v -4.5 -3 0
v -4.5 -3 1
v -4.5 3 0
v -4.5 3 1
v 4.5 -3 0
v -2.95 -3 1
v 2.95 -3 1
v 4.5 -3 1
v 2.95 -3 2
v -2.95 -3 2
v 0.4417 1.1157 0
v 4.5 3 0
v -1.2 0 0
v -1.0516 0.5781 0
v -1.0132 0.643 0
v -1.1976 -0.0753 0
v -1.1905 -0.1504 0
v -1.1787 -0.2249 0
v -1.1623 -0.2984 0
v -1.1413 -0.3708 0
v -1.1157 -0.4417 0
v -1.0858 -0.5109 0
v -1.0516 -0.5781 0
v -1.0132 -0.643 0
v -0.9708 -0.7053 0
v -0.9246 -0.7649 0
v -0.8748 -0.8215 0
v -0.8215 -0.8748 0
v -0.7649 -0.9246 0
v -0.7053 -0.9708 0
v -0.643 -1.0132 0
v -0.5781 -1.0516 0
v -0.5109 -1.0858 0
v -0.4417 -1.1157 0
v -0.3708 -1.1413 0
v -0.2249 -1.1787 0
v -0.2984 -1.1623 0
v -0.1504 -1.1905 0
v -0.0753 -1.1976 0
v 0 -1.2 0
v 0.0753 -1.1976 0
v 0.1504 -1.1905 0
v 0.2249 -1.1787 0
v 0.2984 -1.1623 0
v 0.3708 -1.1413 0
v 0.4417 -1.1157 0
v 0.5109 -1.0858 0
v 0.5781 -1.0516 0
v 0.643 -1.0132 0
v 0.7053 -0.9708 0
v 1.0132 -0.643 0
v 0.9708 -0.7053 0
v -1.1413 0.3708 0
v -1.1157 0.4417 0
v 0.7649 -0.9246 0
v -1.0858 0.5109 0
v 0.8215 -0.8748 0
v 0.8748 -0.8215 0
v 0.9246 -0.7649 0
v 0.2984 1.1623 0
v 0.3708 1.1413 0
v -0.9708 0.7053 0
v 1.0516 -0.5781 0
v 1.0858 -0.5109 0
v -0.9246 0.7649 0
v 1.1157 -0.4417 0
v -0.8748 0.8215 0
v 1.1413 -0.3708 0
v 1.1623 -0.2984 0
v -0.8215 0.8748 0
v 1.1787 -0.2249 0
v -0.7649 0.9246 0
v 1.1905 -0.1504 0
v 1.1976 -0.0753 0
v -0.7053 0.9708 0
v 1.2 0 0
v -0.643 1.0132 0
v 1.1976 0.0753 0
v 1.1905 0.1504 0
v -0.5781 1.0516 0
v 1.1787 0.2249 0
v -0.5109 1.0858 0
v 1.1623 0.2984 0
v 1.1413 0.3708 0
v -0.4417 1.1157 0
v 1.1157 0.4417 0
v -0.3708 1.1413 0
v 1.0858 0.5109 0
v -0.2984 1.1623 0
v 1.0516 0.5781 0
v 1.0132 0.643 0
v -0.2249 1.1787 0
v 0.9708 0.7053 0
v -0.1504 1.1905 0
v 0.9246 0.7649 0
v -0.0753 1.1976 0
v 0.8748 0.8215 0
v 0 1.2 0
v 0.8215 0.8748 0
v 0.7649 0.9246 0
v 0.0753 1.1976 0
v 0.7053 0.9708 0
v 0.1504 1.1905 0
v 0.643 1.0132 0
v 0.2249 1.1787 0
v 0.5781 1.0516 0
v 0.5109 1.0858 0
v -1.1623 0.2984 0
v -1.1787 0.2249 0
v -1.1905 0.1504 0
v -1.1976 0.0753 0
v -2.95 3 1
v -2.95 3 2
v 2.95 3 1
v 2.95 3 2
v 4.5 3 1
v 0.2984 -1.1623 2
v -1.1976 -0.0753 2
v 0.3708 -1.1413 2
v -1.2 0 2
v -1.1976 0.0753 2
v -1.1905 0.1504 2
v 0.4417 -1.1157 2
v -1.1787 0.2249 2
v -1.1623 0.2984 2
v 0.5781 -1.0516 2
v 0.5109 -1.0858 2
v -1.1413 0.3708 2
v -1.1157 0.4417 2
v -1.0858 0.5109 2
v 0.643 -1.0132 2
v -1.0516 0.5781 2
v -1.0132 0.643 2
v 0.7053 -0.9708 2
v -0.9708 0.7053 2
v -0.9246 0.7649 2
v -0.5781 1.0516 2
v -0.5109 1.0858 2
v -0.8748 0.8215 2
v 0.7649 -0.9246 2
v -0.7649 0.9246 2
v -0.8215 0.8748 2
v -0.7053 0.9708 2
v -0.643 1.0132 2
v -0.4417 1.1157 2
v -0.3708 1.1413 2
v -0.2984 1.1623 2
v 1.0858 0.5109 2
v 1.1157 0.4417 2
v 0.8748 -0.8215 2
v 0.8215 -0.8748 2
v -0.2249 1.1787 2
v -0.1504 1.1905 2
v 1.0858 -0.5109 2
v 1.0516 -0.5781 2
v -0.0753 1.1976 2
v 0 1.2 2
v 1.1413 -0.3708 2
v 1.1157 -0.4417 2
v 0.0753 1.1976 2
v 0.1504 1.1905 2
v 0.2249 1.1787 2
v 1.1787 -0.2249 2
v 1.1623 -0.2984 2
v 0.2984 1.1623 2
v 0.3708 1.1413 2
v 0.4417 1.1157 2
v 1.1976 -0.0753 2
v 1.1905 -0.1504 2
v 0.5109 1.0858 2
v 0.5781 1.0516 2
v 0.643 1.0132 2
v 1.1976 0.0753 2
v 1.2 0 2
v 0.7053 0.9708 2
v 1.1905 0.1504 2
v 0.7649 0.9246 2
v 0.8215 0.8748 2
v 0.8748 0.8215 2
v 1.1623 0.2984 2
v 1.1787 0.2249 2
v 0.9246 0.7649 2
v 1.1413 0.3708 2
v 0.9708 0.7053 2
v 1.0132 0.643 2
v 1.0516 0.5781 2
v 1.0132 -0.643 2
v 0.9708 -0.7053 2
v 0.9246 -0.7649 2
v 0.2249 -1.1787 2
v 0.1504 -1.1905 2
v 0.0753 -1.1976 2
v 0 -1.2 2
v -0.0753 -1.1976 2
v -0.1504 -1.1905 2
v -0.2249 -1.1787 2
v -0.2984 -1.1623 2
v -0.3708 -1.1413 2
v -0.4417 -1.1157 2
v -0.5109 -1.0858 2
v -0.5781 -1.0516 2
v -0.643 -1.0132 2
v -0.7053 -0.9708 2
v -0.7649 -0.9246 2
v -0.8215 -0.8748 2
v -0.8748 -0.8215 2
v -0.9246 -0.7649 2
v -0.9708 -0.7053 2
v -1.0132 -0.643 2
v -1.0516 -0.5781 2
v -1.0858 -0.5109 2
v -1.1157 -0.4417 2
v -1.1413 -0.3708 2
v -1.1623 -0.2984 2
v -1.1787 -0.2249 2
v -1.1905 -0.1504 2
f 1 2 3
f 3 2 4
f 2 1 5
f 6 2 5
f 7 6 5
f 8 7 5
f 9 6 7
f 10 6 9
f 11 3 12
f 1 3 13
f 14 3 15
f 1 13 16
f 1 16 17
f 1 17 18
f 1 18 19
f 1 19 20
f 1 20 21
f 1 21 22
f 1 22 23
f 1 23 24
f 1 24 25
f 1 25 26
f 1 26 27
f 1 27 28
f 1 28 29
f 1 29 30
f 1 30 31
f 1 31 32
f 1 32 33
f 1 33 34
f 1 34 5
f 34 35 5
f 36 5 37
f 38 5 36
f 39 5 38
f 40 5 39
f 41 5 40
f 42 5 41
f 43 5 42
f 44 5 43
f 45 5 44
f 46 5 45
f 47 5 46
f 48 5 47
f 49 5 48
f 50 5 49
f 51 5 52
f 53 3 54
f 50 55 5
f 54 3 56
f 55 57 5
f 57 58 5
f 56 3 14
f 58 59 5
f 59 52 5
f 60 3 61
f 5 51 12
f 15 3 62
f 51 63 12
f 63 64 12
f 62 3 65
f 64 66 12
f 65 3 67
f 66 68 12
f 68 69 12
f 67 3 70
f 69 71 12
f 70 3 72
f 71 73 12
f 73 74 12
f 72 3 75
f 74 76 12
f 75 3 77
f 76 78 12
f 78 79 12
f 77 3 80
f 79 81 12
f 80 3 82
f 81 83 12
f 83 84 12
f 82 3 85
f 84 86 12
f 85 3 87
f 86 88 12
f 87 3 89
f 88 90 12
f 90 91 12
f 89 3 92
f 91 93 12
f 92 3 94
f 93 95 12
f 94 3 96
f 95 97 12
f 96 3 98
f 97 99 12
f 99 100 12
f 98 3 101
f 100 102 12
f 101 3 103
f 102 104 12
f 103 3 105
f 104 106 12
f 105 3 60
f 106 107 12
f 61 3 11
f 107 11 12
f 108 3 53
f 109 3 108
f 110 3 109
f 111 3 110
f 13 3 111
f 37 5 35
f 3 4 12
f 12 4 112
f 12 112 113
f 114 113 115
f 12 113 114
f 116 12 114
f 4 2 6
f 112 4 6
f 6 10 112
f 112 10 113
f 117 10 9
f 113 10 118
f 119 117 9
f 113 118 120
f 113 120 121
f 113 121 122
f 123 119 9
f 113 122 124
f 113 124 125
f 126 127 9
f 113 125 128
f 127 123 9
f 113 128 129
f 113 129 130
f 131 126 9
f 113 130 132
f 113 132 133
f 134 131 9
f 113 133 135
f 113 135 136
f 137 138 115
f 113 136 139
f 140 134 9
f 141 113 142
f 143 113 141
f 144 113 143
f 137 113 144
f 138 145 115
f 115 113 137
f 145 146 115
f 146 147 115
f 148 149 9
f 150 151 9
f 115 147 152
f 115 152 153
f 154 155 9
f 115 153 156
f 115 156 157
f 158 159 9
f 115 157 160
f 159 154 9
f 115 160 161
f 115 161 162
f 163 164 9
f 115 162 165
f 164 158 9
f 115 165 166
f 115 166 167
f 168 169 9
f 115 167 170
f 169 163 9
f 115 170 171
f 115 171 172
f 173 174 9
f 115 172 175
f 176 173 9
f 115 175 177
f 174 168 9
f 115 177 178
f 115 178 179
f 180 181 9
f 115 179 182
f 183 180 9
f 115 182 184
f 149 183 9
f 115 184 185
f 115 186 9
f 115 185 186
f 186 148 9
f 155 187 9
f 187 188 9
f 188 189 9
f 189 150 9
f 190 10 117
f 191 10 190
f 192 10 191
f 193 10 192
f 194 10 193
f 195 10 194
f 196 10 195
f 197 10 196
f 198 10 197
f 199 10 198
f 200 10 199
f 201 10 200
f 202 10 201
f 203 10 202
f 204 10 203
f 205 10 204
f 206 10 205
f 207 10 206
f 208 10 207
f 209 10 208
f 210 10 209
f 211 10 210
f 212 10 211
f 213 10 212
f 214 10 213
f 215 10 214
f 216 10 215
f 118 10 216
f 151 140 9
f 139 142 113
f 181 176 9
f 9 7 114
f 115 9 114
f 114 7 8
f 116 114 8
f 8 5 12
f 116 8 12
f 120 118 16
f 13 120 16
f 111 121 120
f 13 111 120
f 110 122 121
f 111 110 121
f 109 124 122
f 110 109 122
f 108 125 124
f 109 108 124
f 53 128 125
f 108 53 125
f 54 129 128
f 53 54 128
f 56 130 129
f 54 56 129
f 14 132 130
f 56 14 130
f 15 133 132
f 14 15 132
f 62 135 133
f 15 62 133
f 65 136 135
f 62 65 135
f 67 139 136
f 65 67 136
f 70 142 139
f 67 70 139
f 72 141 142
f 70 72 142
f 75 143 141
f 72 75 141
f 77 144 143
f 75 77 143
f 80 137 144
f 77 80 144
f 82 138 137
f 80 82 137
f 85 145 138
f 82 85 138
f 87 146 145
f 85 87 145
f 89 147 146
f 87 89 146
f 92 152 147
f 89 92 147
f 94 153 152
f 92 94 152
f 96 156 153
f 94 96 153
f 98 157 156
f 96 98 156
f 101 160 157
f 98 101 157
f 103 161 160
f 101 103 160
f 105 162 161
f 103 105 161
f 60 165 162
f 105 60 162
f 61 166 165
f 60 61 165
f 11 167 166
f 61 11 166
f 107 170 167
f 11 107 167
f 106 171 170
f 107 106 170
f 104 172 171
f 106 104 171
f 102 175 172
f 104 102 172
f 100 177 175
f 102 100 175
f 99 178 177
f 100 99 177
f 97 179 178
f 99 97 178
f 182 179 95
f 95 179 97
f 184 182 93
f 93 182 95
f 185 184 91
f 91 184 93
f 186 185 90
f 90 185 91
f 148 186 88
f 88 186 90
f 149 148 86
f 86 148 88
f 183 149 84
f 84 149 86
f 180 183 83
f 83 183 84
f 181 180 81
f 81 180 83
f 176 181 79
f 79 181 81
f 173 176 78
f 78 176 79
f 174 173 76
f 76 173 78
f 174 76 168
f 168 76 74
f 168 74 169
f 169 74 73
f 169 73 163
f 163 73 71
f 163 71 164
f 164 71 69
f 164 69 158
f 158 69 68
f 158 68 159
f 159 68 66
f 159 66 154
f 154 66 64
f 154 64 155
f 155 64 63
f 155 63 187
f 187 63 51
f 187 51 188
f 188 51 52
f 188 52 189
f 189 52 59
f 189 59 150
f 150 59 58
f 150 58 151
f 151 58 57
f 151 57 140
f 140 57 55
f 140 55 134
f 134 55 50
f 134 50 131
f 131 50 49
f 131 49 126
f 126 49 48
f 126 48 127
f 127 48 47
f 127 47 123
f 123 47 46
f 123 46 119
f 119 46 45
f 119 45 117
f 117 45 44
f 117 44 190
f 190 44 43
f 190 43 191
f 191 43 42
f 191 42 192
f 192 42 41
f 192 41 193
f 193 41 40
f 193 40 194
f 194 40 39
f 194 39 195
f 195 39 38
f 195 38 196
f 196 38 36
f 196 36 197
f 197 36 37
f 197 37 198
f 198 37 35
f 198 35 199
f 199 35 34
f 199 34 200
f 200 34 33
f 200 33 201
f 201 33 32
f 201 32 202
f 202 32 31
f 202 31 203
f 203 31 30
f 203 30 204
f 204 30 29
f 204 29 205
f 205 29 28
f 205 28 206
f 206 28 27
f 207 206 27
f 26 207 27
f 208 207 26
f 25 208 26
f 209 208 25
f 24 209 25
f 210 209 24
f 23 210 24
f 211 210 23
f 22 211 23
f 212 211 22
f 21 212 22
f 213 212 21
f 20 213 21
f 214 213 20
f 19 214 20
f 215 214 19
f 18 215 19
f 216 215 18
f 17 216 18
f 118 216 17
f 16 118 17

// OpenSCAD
difference() {
	union() {
		translate([-4.5,-3,0]) {
			cube([9,6,1]);
		}
		translate([-2.95,-3,0]) {
			cube([5.9,6,2]);
		}
	}
	cylinder(r=1.2,h=2,$fn=100);
}
